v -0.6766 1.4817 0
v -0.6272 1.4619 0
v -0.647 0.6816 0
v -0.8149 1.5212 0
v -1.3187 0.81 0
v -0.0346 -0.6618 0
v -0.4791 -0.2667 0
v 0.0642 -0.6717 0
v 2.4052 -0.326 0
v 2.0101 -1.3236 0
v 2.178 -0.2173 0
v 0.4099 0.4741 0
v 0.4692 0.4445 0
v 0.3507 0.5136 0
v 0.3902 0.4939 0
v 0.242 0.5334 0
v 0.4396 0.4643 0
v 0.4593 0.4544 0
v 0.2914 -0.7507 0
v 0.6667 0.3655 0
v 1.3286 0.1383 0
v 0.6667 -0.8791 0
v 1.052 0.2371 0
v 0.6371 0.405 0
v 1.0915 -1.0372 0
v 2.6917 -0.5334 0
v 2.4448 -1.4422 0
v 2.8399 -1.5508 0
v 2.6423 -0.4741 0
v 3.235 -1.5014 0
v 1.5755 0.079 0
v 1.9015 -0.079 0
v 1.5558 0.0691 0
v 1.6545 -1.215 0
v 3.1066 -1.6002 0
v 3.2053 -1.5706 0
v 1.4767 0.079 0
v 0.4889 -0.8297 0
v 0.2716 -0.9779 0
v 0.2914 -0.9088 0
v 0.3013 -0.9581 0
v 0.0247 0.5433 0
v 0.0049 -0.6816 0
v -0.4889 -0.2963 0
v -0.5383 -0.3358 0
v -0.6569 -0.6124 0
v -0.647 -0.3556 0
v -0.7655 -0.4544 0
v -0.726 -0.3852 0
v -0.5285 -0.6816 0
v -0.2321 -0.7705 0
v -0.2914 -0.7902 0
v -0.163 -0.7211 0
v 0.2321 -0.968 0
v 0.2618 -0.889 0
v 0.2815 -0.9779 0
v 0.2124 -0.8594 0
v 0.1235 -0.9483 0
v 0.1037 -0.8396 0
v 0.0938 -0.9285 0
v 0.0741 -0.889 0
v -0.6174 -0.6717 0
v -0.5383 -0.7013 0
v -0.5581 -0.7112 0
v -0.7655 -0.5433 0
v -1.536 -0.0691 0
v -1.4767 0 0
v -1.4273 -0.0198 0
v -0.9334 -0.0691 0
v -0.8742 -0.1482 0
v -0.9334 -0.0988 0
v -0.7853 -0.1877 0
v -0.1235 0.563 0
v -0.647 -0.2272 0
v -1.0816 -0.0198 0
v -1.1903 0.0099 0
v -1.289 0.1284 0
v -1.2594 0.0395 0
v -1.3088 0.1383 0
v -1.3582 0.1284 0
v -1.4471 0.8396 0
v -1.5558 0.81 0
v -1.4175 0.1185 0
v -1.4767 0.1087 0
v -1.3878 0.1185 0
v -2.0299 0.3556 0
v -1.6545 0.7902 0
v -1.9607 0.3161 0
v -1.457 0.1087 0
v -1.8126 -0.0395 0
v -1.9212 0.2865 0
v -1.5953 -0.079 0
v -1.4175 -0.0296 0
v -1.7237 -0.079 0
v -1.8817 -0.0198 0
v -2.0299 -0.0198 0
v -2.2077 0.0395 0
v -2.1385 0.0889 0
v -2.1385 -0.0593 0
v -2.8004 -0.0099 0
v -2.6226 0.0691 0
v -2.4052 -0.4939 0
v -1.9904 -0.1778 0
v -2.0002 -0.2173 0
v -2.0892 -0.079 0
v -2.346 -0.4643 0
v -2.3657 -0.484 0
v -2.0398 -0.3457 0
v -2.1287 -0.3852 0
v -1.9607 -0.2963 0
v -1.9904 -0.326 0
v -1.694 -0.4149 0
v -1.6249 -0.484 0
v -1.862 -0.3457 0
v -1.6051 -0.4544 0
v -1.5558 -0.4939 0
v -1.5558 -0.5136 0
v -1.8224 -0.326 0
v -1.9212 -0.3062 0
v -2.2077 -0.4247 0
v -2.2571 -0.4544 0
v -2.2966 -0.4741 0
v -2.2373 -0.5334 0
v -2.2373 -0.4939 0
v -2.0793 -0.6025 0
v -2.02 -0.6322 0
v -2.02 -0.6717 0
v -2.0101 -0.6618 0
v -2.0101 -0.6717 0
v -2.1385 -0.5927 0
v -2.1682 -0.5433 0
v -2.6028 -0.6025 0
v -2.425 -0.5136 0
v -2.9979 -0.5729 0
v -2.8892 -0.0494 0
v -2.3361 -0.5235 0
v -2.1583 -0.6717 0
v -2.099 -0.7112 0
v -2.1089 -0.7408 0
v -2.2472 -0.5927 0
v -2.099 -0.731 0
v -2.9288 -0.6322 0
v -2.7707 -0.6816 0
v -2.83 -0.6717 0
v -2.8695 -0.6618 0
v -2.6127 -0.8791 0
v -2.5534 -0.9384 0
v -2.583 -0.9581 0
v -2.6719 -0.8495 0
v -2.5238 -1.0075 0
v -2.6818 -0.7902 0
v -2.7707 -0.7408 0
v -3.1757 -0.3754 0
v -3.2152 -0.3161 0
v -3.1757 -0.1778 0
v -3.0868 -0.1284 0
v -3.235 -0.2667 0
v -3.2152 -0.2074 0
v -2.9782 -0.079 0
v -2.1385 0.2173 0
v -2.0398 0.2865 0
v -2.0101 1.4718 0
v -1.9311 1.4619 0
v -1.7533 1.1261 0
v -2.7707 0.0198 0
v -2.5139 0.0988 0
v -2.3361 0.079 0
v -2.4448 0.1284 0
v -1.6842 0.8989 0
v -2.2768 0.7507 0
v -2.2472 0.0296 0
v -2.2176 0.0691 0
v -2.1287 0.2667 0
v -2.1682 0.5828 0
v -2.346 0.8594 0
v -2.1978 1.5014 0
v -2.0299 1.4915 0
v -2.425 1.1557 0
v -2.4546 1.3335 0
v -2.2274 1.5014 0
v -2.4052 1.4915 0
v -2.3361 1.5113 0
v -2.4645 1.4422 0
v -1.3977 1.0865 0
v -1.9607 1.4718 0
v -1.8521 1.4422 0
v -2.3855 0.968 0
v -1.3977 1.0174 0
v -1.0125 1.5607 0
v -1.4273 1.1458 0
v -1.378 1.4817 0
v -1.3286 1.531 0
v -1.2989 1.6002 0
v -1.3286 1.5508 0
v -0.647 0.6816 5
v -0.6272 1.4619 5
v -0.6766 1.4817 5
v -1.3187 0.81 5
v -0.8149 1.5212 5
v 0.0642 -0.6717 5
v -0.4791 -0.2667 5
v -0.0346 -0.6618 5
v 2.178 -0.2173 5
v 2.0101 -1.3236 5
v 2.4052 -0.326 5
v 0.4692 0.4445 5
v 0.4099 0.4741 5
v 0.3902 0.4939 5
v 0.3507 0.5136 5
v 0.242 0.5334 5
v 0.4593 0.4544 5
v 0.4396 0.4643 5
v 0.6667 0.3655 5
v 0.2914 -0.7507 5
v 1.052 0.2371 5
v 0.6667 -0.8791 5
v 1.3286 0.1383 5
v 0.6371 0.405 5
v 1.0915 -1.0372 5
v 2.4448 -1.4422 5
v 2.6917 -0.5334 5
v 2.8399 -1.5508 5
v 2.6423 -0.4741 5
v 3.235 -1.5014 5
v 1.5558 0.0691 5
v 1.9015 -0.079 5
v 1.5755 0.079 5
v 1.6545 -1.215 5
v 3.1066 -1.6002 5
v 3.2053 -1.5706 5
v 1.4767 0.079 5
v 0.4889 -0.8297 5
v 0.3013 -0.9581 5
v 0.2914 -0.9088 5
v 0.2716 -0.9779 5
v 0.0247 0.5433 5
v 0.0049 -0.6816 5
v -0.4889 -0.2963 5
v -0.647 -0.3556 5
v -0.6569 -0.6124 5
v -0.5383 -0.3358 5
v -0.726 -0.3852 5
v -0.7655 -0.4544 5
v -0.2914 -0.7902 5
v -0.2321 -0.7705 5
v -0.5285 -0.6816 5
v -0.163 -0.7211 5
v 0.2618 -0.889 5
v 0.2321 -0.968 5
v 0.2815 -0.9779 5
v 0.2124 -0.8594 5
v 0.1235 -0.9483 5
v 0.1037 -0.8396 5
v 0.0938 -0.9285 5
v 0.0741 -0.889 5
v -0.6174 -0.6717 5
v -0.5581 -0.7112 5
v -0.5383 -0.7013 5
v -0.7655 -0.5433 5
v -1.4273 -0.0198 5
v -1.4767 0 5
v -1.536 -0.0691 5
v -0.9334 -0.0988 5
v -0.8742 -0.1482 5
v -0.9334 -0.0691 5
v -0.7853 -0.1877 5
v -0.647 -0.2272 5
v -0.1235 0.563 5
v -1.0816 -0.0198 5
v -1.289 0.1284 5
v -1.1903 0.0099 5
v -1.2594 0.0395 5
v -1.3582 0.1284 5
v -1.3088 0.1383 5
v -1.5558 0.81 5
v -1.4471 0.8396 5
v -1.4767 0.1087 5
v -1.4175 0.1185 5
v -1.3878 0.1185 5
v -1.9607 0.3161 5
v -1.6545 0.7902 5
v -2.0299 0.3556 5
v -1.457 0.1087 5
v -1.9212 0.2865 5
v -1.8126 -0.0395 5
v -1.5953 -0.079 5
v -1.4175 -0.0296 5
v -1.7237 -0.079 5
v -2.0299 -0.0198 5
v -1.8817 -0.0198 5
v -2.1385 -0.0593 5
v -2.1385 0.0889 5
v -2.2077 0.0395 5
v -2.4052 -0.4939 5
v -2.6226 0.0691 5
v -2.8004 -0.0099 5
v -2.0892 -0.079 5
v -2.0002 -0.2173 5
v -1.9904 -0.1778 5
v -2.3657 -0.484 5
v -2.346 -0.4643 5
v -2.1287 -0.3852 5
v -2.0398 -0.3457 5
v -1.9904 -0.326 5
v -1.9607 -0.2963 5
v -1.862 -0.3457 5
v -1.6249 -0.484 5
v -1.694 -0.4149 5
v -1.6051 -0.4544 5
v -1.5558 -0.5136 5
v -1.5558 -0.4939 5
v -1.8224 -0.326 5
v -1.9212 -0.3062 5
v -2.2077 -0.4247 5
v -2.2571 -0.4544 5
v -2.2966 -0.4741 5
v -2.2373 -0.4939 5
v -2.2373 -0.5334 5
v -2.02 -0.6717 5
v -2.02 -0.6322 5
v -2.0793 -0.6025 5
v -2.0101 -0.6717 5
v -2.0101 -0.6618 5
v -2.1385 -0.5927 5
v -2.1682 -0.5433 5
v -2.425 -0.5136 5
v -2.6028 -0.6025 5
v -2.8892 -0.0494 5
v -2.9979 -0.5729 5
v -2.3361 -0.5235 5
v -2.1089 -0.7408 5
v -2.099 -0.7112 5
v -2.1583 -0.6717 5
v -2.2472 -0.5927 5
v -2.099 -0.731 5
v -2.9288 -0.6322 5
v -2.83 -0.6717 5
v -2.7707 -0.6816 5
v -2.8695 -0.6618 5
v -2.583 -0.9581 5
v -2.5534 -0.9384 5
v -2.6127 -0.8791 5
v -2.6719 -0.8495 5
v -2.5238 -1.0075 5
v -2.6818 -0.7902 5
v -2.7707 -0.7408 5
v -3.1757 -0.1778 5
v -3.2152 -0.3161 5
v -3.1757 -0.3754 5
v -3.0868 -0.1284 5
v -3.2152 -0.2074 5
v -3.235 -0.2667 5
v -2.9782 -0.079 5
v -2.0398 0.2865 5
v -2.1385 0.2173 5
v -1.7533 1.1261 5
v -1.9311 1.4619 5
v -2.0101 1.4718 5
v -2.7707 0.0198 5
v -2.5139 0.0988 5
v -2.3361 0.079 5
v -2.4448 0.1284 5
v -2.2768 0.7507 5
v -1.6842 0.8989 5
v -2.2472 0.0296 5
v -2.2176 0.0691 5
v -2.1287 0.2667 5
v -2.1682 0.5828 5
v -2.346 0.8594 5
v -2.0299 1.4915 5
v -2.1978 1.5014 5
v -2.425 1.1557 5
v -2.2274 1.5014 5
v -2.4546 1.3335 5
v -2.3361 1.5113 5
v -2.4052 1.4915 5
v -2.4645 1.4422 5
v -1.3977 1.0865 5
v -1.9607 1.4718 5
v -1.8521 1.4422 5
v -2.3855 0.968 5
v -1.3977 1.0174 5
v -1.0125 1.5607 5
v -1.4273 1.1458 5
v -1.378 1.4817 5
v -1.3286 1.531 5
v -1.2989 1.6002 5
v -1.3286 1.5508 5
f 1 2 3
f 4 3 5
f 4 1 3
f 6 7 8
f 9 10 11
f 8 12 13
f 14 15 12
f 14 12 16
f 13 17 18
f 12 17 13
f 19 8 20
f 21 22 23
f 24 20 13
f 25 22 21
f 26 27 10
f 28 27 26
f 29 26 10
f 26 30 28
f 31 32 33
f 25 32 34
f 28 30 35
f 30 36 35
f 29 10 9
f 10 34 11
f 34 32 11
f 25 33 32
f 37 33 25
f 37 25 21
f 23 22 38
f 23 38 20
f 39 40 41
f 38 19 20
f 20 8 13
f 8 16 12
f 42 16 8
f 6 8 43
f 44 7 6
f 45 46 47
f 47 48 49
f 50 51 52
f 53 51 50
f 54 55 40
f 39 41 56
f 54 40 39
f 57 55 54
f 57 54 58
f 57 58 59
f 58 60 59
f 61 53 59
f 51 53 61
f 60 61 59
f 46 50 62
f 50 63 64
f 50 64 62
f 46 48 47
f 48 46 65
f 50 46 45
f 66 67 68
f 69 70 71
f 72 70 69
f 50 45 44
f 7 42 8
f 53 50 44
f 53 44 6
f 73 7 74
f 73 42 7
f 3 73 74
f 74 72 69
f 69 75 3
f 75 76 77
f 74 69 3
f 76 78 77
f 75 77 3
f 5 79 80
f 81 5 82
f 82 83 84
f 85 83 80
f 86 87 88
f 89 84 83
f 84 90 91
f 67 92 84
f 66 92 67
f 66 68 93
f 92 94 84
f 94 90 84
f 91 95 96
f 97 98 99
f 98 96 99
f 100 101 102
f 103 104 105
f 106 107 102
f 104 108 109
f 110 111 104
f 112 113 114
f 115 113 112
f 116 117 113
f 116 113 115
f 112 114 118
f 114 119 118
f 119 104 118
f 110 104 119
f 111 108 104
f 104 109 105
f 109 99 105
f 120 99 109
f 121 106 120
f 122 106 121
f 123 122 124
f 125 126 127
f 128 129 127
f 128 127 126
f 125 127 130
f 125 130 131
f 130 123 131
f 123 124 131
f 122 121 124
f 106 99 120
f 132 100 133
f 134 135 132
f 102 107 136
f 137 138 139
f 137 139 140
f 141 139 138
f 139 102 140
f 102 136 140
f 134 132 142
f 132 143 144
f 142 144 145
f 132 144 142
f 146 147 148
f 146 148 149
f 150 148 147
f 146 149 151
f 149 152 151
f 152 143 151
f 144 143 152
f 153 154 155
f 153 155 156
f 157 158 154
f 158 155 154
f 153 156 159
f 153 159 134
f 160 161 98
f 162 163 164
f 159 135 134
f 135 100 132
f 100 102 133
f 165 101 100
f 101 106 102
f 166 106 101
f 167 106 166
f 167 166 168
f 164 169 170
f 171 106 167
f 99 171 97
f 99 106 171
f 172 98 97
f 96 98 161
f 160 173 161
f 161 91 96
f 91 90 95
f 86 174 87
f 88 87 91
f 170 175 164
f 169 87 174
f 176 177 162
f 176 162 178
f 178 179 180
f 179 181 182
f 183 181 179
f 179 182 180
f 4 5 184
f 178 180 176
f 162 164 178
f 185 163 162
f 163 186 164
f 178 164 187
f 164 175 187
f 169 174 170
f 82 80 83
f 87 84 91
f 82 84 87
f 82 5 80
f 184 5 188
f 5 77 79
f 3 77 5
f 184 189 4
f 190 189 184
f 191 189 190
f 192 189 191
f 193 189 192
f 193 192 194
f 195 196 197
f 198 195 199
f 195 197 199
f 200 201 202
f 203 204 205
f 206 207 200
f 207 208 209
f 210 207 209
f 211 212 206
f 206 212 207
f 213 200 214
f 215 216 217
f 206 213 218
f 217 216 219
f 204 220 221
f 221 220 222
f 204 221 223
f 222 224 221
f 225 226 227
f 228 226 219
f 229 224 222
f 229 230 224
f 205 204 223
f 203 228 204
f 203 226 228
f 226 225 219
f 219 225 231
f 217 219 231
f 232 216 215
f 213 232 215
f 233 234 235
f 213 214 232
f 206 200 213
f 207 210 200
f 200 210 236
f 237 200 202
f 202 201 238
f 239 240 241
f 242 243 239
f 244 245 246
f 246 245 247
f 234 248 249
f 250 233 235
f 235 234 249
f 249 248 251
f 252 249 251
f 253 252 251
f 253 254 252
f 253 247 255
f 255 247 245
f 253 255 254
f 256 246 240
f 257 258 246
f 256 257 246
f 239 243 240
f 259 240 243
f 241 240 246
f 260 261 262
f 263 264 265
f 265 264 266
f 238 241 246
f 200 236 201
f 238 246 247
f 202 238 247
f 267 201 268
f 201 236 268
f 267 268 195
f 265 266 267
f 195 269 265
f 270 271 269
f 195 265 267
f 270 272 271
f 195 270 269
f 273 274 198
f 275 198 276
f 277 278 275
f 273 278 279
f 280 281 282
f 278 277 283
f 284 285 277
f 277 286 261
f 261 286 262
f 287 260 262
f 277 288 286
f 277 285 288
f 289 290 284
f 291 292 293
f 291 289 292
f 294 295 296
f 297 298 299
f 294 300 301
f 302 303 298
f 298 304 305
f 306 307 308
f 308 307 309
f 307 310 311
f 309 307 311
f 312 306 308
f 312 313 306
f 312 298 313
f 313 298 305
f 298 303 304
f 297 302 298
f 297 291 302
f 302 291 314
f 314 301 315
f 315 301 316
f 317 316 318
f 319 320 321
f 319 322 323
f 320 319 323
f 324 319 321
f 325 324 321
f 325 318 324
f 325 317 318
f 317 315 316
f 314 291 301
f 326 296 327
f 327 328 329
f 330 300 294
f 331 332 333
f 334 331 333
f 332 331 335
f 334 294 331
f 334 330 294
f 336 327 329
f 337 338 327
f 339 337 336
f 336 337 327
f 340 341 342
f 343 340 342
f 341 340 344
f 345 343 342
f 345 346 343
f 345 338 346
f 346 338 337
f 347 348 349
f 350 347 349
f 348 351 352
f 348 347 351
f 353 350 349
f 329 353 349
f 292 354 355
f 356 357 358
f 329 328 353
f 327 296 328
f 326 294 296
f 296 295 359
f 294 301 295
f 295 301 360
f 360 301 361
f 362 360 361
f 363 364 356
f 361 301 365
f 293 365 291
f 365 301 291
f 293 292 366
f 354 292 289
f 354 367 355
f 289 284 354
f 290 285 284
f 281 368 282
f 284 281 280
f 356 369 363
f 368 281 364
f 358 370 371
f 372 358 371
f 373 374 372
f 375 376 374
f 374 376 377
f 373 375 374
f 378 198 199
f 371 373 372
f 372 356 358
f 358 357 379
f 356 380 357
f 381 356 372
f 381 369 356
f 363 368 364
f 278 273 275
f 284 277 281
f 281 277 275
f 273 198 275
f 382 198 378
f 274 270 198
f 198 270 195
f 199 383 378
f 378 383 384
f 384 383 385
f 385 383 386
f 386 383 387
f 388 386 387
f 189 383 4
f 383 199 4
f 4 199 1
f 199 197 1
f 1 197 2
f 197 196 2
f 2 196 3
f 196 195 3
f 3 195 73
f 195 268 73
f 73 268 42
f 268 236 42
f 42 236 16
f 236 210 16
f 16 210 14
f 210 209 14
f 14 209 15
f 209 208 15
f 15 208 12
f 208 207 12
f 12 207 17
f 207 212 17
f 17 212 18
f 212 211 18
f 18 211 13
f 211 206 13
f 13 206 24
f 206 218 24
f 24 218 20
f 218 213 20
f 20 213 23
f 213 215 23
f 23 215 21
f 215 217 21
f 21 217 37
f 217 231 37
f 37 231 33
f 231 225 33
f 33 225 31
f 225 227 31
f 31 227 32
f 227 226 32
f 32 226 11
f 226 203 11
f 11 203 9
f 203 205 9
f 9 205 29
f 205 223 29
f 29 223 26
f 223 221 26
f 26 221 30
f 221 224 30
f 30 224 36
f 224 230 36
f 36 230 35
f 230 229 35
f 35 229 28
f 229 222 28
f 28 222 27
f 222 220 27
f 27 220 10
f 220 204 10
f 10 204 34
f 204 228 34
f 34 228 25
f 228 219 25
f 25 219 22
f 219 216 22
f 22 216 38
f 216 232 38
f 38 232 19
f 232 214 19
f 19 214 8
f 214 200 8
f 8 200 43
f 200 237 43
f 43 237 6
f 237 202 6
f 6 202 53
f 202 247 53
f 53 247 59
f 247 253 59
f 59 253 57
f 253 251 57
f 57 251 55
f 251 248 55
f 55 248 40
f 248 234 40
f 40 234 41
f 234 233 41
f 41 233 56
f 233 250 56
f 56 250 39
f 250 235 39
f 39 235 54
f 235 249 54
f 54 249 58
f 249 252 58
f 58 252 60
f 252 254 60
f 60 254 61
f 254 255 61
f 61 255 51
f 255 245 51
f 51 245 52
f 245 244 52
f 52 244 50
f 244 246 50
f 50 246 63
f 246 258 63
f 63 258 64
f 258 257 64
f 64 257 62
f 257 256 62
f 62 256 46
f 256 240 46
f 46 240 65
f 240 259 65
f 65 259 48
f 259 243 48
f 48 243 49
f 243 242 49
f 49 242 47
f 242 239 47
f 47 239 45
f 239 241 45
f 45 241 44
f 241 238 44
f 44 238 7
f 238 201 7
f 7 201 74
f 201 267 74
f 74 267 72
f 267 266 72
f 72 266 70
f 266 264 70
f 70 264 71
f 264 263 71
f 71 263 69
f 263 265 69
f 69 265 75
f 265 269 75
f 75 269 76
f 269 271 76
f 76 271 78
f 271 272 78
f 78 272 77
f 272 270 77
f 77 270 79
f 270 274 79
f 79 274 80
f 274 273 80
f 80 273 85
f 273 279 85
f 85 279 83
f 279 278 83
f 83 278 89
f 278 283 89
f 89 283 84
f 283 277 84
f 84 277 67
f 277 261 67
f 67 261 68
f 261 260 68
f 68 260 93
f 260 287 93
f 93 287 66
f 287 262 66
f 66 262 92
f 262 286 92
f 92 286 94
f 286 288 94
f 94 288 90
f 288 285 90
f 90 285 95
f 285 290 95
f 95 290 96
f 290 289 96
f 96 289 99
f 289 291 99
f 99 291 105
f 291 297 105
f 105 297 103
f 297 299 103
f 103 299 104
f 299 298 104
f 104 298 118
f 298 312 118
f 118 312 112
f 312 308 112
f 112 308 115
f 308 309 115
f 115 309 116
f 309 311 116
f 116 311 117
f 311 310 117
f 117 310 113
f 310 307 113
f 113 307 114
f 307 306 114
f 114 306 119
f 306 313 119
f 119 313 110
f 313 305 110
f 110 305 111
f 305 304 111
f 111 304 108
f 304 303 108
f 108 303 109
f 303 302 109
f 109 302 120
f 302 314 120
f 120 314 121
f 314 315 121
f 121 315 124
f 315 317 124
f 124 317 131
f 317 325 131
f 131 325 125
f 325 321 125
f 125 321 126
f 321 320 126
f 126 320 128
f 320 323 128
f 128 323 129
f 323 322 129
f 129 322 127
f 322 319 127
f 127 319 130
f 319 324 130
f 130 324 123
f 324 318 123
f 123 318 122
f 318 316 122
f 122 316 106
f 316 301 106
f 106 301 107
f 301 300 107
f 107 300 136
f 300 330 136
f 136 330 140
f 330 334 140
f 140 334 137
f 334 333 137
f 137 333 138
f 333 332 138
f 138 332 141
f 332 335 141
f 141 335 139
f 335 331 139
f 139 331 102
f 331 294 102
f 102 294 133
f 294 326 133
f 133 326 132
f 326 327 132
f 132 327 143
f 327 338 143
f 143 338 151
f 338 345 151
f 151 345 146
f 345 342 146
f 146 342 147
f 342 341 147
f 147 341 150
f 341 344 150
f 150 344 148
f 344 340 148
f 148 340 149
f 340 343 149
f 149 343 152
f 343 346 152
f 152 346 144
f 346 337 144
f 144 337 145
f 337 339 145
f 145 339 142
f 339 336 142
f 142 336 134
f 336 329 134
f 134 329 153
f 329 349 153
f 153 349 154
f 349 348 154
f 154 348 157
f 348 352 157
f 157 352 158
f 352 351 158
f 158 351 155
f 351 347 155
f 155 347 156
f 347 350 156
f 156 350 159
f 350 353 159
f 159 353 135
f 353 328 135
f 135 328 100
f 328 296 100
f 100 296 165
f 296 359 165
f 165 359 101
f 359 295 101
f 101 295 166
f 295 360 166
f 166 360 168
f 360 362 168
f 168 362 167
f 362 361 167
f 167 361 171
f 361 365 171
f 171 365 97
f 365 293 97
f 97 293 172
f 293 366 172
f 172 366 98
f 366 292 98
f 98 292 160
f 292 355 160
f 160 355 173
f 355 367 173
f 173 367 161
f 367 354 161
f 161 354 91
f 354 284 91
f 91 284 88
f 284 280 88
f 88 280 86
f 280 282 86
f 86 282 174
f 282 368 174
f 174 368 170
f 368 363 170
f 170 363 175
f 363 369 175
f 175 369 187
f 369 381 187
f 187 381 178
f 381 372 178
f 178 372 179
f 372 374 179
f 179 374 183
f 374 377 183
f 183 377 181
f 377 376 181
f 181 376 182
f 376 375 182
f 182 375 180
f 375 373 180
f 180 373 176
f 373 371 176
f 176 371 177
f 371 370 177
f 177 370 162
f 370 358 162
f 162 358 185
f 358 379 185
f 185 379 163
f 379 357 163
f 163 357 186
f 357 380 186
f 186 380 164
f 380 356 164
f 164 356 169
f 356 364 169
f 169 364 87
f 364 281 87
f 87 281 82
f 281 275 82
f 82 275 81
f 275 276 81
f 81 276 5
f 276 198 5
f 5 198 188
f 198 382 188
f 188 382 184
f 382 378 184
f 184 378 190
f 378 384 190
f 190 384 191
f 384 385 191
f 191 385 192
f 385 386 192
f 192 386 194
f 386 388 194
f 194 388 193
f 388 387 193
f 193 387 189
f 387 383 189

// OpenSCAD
// Module names are of the form poly_<inkscape-path-id>().  As a result,
// you can associate a polygon in this OpenSCAD program with the corresponding
// SVG element in the Inkscape document by looking for the XML element with
// the attribute id="inkscape-path-id".

// fudge value is used to ensure that subtracted solids are a tad taller
// in the z dimension than the polygon being subtracted from.  This helps
// keep the resulting .stl file manifold.
fudge = 0.1;

module poly_path4236(h)
{
  scale([25.4/90, -25.4/90, 1]) union()
  {
    linear_extrude(height=h)
      polygon([[11.462500,5.320000],[11.357500,5.565000],[11.007500,5.670000],[10.062500,5.495000],[8.662500,5.110000],[7.122500,4.690000],[5.862500,4.305000],[3.867500,3.675000],[2.362500,3.115000],[1.732500,2.940000],[1.032500,2.660000],[0.227500,2.380000],[0.017500,2.415000],[-0.122500,2.345000],[-0.577500,2.555000],[0.367500,2.975000],[0.752500,3.045000],[0.927500,3.150000],[1.032500,3.220000],[1.067500,3.395000],[0.997500,3.465000],[0.962500,3.465000],[0.822500,3.430000],[0.437500,3.360000],[0.332500,3.290000],[0.297500,3.220000],[0.262500,3.150000],[-0.822500,2.730000],[-1.032500,2.800000],[-1.872500,2.415000],[-1.907500,2.485000],[-1.977500,2.520000],[-2.187500,2.380000],[-2.327500,2.170000],[-2.712500,1.925000],[-2.712500,1.610000],[-2.572500,1.365000],[-2.292500,1.260000],[-1.907500,1.190000],[-1.732500,1.050000],[-1.697500,0.945000],[-2.292500,0.805000],[-2.782500,0.665000],[-3.097500,0.525000],[-3.307500,0.350000],[-3.307500,0.245000],[-3.832500,0.070000],[-4.217500,-0.035000],[-4.462500,-0.140000],[-4.532500,-0.350000],[-4.567500,-0.455000],[-4.637500,-0.490000],[-4.812500,-0.455000],[-4.917500,-0.420000],[-4.952500,-0.420000],[-5.022500,-0.420000],[-5.162500,-0.385000],[-5.232500,-0.385000],[-5.232500,-0.175000],[-5.232500,-0.000000],[-5.057500,0.070000],[-5.022500,0.105000],[-5.232500,0.175000],[-5.442500,0.245000],[-5.652500,0.280000],[-6.107500,0.280000],[-6.422500,0.140000],[-6.667500,0.070000],[-6.807500,0.070000],[-7.192500,0.070000],[-7.577500,0.210000],[-7.402500,0.280000],[-7.052500,0.630000],[-7.087500,0.770000],[-6.457500,1.155000],[-6.002500,1.470000],[-5.687500,1.610000],[-5.512500,1.750000],[-5.512500,1.820000],[-5.757500,1.715000],[-6.177500,1.470000],[-6.597500,1.225000],[-6.807500,1.085000],[-6.947500,1.050000],[-7.052500,1.155000],[-7.227500,1.225000],[-7.542500,1.365000],[-7.822500,1.505000],[-7.997500,1.610000],[-7.927500,1.750000],[-7.682500,1.925000],[-7.367500,2.135000],[-7.157500,2.240000],[-7.122500,2.345000],[-7.122500,2.380000],[-7.157500,2.380000],[-7.577500,2.100000],[-7.927500,1.890000],[-8.137500,1.680000],[-8.312500,1.645000],[-8.382500,1.715000],[-8.277500,1.855000],[-7.962500,2.100000],[-7.647500,2.380000],[-7.437500,2.520000],[-7.437500,2.590000],[-7.472500,2.625000],[-8.522500,1.750000],[-8.592500,1.820000],[-9.222500,2.135000],[-9.817500,2.415000],[-9.502500,2.800000],[-9.257500,3.115000],[-9.047500,3.325000],[-8.942500,3.570000],[-9.152500,3.395000],[-9.467500,3.010000],[-9.817500,2.625000],[-10.027500,2.380000],[-10.167500,2.345000],[-10.377500,2.240000],[-10.622500,2.030000],[-10.937500,1.680000],[-11.252500,1.330000],[-11.392500,1.120000],[-11.462500,0.945000],[-11.392500,0.735000],[-11.252500,0.630000],[-10.937500,0.455000],[-10.552500,0.280000],[-10.237500,0.175000],[-9.922500,0.035000],[-9.817500,-0.070000],[-9.292500,-0.245000],[-8.907500,-0.350000],[-8.662500,-0.455000],[-8.277500,-0.280000],[-7.962500,-0.105000],[-7.822500,-0.140000],[-7.857500,-0.245000],[-7.577500,-0.315000],[-7.577500,-0.595000],[-7.577500,-0.770000],[-7.542500,-0.945000],[-7.227500,-1.015000],[-6.807500,-1.015000],[-6.947500,-1.120000],[-7.192500,-1.260000],[-7.682500,-2.065000],[-8.067500,-2.660000],[-8.312500,-3.045000],[-8.452500,-3.430000],[-8.592500,-4.095000],[-8.697500,-4.725000],[-8.732500,-5.110000],[-8.522500,-5.285000],[-8.277500,-5.355000],[-7.892500,-5.320000],[-7.787500,-5.320000],[-7.192500,-5.285000],[-7.122500,-5.215000],[-6.947500,-5.215000],[-6.842500,-5.180000],[-6.702500,-5.145000],[-6.562500,-5.110000],[-6.212500,-3.990000],[-5.967500,-3.185000],[-5.862500,-2.800000],[-5.512500,-2.870000],[-5.127500,-2.975000],[-4.672500,-2.870000],[-4.952500,-3.605000],[-4.952500,-3.850000],[-5.057500,-4.060000],[-4.882500,-5.250000],[-4.707500,-5.425000],[-4.707500,-5.495000],[-4.602500,-5.670000],[-3.587500,-5.530000],[-2.887500,-5.390000],[-2.397500,-5.250000],[-2.222500,-5.180000],[-2.292500,-2.415000],[-1.207500,-2.170000],[-0.437500,-1.995000],[0.087500,-1.925000],[0.857500,-1.890000],[1.242500,-1.820000],[1.382500,-1.750000],[1.452500,-1.680000],[1.557500,-1.645000],[1.627500,-1.610000],[1.662500,-1.575000],[2.257500,-1.435000],[2.362500,-1.295000],[3.727500,-0.840000],[4.707500,-0.490000],[5.232500,-0.280000],[5.512500,-0.245000],[5.582500,-0.280000],[6.737500,0.280000],[7.717500,0.770000],[8.522500,1.155000],[9.362500,1.680000],[9.537500,1.890000],[11.462500,5.320000],[11.462500,5.320000]]);
  }
}

poly_path4236(5);
